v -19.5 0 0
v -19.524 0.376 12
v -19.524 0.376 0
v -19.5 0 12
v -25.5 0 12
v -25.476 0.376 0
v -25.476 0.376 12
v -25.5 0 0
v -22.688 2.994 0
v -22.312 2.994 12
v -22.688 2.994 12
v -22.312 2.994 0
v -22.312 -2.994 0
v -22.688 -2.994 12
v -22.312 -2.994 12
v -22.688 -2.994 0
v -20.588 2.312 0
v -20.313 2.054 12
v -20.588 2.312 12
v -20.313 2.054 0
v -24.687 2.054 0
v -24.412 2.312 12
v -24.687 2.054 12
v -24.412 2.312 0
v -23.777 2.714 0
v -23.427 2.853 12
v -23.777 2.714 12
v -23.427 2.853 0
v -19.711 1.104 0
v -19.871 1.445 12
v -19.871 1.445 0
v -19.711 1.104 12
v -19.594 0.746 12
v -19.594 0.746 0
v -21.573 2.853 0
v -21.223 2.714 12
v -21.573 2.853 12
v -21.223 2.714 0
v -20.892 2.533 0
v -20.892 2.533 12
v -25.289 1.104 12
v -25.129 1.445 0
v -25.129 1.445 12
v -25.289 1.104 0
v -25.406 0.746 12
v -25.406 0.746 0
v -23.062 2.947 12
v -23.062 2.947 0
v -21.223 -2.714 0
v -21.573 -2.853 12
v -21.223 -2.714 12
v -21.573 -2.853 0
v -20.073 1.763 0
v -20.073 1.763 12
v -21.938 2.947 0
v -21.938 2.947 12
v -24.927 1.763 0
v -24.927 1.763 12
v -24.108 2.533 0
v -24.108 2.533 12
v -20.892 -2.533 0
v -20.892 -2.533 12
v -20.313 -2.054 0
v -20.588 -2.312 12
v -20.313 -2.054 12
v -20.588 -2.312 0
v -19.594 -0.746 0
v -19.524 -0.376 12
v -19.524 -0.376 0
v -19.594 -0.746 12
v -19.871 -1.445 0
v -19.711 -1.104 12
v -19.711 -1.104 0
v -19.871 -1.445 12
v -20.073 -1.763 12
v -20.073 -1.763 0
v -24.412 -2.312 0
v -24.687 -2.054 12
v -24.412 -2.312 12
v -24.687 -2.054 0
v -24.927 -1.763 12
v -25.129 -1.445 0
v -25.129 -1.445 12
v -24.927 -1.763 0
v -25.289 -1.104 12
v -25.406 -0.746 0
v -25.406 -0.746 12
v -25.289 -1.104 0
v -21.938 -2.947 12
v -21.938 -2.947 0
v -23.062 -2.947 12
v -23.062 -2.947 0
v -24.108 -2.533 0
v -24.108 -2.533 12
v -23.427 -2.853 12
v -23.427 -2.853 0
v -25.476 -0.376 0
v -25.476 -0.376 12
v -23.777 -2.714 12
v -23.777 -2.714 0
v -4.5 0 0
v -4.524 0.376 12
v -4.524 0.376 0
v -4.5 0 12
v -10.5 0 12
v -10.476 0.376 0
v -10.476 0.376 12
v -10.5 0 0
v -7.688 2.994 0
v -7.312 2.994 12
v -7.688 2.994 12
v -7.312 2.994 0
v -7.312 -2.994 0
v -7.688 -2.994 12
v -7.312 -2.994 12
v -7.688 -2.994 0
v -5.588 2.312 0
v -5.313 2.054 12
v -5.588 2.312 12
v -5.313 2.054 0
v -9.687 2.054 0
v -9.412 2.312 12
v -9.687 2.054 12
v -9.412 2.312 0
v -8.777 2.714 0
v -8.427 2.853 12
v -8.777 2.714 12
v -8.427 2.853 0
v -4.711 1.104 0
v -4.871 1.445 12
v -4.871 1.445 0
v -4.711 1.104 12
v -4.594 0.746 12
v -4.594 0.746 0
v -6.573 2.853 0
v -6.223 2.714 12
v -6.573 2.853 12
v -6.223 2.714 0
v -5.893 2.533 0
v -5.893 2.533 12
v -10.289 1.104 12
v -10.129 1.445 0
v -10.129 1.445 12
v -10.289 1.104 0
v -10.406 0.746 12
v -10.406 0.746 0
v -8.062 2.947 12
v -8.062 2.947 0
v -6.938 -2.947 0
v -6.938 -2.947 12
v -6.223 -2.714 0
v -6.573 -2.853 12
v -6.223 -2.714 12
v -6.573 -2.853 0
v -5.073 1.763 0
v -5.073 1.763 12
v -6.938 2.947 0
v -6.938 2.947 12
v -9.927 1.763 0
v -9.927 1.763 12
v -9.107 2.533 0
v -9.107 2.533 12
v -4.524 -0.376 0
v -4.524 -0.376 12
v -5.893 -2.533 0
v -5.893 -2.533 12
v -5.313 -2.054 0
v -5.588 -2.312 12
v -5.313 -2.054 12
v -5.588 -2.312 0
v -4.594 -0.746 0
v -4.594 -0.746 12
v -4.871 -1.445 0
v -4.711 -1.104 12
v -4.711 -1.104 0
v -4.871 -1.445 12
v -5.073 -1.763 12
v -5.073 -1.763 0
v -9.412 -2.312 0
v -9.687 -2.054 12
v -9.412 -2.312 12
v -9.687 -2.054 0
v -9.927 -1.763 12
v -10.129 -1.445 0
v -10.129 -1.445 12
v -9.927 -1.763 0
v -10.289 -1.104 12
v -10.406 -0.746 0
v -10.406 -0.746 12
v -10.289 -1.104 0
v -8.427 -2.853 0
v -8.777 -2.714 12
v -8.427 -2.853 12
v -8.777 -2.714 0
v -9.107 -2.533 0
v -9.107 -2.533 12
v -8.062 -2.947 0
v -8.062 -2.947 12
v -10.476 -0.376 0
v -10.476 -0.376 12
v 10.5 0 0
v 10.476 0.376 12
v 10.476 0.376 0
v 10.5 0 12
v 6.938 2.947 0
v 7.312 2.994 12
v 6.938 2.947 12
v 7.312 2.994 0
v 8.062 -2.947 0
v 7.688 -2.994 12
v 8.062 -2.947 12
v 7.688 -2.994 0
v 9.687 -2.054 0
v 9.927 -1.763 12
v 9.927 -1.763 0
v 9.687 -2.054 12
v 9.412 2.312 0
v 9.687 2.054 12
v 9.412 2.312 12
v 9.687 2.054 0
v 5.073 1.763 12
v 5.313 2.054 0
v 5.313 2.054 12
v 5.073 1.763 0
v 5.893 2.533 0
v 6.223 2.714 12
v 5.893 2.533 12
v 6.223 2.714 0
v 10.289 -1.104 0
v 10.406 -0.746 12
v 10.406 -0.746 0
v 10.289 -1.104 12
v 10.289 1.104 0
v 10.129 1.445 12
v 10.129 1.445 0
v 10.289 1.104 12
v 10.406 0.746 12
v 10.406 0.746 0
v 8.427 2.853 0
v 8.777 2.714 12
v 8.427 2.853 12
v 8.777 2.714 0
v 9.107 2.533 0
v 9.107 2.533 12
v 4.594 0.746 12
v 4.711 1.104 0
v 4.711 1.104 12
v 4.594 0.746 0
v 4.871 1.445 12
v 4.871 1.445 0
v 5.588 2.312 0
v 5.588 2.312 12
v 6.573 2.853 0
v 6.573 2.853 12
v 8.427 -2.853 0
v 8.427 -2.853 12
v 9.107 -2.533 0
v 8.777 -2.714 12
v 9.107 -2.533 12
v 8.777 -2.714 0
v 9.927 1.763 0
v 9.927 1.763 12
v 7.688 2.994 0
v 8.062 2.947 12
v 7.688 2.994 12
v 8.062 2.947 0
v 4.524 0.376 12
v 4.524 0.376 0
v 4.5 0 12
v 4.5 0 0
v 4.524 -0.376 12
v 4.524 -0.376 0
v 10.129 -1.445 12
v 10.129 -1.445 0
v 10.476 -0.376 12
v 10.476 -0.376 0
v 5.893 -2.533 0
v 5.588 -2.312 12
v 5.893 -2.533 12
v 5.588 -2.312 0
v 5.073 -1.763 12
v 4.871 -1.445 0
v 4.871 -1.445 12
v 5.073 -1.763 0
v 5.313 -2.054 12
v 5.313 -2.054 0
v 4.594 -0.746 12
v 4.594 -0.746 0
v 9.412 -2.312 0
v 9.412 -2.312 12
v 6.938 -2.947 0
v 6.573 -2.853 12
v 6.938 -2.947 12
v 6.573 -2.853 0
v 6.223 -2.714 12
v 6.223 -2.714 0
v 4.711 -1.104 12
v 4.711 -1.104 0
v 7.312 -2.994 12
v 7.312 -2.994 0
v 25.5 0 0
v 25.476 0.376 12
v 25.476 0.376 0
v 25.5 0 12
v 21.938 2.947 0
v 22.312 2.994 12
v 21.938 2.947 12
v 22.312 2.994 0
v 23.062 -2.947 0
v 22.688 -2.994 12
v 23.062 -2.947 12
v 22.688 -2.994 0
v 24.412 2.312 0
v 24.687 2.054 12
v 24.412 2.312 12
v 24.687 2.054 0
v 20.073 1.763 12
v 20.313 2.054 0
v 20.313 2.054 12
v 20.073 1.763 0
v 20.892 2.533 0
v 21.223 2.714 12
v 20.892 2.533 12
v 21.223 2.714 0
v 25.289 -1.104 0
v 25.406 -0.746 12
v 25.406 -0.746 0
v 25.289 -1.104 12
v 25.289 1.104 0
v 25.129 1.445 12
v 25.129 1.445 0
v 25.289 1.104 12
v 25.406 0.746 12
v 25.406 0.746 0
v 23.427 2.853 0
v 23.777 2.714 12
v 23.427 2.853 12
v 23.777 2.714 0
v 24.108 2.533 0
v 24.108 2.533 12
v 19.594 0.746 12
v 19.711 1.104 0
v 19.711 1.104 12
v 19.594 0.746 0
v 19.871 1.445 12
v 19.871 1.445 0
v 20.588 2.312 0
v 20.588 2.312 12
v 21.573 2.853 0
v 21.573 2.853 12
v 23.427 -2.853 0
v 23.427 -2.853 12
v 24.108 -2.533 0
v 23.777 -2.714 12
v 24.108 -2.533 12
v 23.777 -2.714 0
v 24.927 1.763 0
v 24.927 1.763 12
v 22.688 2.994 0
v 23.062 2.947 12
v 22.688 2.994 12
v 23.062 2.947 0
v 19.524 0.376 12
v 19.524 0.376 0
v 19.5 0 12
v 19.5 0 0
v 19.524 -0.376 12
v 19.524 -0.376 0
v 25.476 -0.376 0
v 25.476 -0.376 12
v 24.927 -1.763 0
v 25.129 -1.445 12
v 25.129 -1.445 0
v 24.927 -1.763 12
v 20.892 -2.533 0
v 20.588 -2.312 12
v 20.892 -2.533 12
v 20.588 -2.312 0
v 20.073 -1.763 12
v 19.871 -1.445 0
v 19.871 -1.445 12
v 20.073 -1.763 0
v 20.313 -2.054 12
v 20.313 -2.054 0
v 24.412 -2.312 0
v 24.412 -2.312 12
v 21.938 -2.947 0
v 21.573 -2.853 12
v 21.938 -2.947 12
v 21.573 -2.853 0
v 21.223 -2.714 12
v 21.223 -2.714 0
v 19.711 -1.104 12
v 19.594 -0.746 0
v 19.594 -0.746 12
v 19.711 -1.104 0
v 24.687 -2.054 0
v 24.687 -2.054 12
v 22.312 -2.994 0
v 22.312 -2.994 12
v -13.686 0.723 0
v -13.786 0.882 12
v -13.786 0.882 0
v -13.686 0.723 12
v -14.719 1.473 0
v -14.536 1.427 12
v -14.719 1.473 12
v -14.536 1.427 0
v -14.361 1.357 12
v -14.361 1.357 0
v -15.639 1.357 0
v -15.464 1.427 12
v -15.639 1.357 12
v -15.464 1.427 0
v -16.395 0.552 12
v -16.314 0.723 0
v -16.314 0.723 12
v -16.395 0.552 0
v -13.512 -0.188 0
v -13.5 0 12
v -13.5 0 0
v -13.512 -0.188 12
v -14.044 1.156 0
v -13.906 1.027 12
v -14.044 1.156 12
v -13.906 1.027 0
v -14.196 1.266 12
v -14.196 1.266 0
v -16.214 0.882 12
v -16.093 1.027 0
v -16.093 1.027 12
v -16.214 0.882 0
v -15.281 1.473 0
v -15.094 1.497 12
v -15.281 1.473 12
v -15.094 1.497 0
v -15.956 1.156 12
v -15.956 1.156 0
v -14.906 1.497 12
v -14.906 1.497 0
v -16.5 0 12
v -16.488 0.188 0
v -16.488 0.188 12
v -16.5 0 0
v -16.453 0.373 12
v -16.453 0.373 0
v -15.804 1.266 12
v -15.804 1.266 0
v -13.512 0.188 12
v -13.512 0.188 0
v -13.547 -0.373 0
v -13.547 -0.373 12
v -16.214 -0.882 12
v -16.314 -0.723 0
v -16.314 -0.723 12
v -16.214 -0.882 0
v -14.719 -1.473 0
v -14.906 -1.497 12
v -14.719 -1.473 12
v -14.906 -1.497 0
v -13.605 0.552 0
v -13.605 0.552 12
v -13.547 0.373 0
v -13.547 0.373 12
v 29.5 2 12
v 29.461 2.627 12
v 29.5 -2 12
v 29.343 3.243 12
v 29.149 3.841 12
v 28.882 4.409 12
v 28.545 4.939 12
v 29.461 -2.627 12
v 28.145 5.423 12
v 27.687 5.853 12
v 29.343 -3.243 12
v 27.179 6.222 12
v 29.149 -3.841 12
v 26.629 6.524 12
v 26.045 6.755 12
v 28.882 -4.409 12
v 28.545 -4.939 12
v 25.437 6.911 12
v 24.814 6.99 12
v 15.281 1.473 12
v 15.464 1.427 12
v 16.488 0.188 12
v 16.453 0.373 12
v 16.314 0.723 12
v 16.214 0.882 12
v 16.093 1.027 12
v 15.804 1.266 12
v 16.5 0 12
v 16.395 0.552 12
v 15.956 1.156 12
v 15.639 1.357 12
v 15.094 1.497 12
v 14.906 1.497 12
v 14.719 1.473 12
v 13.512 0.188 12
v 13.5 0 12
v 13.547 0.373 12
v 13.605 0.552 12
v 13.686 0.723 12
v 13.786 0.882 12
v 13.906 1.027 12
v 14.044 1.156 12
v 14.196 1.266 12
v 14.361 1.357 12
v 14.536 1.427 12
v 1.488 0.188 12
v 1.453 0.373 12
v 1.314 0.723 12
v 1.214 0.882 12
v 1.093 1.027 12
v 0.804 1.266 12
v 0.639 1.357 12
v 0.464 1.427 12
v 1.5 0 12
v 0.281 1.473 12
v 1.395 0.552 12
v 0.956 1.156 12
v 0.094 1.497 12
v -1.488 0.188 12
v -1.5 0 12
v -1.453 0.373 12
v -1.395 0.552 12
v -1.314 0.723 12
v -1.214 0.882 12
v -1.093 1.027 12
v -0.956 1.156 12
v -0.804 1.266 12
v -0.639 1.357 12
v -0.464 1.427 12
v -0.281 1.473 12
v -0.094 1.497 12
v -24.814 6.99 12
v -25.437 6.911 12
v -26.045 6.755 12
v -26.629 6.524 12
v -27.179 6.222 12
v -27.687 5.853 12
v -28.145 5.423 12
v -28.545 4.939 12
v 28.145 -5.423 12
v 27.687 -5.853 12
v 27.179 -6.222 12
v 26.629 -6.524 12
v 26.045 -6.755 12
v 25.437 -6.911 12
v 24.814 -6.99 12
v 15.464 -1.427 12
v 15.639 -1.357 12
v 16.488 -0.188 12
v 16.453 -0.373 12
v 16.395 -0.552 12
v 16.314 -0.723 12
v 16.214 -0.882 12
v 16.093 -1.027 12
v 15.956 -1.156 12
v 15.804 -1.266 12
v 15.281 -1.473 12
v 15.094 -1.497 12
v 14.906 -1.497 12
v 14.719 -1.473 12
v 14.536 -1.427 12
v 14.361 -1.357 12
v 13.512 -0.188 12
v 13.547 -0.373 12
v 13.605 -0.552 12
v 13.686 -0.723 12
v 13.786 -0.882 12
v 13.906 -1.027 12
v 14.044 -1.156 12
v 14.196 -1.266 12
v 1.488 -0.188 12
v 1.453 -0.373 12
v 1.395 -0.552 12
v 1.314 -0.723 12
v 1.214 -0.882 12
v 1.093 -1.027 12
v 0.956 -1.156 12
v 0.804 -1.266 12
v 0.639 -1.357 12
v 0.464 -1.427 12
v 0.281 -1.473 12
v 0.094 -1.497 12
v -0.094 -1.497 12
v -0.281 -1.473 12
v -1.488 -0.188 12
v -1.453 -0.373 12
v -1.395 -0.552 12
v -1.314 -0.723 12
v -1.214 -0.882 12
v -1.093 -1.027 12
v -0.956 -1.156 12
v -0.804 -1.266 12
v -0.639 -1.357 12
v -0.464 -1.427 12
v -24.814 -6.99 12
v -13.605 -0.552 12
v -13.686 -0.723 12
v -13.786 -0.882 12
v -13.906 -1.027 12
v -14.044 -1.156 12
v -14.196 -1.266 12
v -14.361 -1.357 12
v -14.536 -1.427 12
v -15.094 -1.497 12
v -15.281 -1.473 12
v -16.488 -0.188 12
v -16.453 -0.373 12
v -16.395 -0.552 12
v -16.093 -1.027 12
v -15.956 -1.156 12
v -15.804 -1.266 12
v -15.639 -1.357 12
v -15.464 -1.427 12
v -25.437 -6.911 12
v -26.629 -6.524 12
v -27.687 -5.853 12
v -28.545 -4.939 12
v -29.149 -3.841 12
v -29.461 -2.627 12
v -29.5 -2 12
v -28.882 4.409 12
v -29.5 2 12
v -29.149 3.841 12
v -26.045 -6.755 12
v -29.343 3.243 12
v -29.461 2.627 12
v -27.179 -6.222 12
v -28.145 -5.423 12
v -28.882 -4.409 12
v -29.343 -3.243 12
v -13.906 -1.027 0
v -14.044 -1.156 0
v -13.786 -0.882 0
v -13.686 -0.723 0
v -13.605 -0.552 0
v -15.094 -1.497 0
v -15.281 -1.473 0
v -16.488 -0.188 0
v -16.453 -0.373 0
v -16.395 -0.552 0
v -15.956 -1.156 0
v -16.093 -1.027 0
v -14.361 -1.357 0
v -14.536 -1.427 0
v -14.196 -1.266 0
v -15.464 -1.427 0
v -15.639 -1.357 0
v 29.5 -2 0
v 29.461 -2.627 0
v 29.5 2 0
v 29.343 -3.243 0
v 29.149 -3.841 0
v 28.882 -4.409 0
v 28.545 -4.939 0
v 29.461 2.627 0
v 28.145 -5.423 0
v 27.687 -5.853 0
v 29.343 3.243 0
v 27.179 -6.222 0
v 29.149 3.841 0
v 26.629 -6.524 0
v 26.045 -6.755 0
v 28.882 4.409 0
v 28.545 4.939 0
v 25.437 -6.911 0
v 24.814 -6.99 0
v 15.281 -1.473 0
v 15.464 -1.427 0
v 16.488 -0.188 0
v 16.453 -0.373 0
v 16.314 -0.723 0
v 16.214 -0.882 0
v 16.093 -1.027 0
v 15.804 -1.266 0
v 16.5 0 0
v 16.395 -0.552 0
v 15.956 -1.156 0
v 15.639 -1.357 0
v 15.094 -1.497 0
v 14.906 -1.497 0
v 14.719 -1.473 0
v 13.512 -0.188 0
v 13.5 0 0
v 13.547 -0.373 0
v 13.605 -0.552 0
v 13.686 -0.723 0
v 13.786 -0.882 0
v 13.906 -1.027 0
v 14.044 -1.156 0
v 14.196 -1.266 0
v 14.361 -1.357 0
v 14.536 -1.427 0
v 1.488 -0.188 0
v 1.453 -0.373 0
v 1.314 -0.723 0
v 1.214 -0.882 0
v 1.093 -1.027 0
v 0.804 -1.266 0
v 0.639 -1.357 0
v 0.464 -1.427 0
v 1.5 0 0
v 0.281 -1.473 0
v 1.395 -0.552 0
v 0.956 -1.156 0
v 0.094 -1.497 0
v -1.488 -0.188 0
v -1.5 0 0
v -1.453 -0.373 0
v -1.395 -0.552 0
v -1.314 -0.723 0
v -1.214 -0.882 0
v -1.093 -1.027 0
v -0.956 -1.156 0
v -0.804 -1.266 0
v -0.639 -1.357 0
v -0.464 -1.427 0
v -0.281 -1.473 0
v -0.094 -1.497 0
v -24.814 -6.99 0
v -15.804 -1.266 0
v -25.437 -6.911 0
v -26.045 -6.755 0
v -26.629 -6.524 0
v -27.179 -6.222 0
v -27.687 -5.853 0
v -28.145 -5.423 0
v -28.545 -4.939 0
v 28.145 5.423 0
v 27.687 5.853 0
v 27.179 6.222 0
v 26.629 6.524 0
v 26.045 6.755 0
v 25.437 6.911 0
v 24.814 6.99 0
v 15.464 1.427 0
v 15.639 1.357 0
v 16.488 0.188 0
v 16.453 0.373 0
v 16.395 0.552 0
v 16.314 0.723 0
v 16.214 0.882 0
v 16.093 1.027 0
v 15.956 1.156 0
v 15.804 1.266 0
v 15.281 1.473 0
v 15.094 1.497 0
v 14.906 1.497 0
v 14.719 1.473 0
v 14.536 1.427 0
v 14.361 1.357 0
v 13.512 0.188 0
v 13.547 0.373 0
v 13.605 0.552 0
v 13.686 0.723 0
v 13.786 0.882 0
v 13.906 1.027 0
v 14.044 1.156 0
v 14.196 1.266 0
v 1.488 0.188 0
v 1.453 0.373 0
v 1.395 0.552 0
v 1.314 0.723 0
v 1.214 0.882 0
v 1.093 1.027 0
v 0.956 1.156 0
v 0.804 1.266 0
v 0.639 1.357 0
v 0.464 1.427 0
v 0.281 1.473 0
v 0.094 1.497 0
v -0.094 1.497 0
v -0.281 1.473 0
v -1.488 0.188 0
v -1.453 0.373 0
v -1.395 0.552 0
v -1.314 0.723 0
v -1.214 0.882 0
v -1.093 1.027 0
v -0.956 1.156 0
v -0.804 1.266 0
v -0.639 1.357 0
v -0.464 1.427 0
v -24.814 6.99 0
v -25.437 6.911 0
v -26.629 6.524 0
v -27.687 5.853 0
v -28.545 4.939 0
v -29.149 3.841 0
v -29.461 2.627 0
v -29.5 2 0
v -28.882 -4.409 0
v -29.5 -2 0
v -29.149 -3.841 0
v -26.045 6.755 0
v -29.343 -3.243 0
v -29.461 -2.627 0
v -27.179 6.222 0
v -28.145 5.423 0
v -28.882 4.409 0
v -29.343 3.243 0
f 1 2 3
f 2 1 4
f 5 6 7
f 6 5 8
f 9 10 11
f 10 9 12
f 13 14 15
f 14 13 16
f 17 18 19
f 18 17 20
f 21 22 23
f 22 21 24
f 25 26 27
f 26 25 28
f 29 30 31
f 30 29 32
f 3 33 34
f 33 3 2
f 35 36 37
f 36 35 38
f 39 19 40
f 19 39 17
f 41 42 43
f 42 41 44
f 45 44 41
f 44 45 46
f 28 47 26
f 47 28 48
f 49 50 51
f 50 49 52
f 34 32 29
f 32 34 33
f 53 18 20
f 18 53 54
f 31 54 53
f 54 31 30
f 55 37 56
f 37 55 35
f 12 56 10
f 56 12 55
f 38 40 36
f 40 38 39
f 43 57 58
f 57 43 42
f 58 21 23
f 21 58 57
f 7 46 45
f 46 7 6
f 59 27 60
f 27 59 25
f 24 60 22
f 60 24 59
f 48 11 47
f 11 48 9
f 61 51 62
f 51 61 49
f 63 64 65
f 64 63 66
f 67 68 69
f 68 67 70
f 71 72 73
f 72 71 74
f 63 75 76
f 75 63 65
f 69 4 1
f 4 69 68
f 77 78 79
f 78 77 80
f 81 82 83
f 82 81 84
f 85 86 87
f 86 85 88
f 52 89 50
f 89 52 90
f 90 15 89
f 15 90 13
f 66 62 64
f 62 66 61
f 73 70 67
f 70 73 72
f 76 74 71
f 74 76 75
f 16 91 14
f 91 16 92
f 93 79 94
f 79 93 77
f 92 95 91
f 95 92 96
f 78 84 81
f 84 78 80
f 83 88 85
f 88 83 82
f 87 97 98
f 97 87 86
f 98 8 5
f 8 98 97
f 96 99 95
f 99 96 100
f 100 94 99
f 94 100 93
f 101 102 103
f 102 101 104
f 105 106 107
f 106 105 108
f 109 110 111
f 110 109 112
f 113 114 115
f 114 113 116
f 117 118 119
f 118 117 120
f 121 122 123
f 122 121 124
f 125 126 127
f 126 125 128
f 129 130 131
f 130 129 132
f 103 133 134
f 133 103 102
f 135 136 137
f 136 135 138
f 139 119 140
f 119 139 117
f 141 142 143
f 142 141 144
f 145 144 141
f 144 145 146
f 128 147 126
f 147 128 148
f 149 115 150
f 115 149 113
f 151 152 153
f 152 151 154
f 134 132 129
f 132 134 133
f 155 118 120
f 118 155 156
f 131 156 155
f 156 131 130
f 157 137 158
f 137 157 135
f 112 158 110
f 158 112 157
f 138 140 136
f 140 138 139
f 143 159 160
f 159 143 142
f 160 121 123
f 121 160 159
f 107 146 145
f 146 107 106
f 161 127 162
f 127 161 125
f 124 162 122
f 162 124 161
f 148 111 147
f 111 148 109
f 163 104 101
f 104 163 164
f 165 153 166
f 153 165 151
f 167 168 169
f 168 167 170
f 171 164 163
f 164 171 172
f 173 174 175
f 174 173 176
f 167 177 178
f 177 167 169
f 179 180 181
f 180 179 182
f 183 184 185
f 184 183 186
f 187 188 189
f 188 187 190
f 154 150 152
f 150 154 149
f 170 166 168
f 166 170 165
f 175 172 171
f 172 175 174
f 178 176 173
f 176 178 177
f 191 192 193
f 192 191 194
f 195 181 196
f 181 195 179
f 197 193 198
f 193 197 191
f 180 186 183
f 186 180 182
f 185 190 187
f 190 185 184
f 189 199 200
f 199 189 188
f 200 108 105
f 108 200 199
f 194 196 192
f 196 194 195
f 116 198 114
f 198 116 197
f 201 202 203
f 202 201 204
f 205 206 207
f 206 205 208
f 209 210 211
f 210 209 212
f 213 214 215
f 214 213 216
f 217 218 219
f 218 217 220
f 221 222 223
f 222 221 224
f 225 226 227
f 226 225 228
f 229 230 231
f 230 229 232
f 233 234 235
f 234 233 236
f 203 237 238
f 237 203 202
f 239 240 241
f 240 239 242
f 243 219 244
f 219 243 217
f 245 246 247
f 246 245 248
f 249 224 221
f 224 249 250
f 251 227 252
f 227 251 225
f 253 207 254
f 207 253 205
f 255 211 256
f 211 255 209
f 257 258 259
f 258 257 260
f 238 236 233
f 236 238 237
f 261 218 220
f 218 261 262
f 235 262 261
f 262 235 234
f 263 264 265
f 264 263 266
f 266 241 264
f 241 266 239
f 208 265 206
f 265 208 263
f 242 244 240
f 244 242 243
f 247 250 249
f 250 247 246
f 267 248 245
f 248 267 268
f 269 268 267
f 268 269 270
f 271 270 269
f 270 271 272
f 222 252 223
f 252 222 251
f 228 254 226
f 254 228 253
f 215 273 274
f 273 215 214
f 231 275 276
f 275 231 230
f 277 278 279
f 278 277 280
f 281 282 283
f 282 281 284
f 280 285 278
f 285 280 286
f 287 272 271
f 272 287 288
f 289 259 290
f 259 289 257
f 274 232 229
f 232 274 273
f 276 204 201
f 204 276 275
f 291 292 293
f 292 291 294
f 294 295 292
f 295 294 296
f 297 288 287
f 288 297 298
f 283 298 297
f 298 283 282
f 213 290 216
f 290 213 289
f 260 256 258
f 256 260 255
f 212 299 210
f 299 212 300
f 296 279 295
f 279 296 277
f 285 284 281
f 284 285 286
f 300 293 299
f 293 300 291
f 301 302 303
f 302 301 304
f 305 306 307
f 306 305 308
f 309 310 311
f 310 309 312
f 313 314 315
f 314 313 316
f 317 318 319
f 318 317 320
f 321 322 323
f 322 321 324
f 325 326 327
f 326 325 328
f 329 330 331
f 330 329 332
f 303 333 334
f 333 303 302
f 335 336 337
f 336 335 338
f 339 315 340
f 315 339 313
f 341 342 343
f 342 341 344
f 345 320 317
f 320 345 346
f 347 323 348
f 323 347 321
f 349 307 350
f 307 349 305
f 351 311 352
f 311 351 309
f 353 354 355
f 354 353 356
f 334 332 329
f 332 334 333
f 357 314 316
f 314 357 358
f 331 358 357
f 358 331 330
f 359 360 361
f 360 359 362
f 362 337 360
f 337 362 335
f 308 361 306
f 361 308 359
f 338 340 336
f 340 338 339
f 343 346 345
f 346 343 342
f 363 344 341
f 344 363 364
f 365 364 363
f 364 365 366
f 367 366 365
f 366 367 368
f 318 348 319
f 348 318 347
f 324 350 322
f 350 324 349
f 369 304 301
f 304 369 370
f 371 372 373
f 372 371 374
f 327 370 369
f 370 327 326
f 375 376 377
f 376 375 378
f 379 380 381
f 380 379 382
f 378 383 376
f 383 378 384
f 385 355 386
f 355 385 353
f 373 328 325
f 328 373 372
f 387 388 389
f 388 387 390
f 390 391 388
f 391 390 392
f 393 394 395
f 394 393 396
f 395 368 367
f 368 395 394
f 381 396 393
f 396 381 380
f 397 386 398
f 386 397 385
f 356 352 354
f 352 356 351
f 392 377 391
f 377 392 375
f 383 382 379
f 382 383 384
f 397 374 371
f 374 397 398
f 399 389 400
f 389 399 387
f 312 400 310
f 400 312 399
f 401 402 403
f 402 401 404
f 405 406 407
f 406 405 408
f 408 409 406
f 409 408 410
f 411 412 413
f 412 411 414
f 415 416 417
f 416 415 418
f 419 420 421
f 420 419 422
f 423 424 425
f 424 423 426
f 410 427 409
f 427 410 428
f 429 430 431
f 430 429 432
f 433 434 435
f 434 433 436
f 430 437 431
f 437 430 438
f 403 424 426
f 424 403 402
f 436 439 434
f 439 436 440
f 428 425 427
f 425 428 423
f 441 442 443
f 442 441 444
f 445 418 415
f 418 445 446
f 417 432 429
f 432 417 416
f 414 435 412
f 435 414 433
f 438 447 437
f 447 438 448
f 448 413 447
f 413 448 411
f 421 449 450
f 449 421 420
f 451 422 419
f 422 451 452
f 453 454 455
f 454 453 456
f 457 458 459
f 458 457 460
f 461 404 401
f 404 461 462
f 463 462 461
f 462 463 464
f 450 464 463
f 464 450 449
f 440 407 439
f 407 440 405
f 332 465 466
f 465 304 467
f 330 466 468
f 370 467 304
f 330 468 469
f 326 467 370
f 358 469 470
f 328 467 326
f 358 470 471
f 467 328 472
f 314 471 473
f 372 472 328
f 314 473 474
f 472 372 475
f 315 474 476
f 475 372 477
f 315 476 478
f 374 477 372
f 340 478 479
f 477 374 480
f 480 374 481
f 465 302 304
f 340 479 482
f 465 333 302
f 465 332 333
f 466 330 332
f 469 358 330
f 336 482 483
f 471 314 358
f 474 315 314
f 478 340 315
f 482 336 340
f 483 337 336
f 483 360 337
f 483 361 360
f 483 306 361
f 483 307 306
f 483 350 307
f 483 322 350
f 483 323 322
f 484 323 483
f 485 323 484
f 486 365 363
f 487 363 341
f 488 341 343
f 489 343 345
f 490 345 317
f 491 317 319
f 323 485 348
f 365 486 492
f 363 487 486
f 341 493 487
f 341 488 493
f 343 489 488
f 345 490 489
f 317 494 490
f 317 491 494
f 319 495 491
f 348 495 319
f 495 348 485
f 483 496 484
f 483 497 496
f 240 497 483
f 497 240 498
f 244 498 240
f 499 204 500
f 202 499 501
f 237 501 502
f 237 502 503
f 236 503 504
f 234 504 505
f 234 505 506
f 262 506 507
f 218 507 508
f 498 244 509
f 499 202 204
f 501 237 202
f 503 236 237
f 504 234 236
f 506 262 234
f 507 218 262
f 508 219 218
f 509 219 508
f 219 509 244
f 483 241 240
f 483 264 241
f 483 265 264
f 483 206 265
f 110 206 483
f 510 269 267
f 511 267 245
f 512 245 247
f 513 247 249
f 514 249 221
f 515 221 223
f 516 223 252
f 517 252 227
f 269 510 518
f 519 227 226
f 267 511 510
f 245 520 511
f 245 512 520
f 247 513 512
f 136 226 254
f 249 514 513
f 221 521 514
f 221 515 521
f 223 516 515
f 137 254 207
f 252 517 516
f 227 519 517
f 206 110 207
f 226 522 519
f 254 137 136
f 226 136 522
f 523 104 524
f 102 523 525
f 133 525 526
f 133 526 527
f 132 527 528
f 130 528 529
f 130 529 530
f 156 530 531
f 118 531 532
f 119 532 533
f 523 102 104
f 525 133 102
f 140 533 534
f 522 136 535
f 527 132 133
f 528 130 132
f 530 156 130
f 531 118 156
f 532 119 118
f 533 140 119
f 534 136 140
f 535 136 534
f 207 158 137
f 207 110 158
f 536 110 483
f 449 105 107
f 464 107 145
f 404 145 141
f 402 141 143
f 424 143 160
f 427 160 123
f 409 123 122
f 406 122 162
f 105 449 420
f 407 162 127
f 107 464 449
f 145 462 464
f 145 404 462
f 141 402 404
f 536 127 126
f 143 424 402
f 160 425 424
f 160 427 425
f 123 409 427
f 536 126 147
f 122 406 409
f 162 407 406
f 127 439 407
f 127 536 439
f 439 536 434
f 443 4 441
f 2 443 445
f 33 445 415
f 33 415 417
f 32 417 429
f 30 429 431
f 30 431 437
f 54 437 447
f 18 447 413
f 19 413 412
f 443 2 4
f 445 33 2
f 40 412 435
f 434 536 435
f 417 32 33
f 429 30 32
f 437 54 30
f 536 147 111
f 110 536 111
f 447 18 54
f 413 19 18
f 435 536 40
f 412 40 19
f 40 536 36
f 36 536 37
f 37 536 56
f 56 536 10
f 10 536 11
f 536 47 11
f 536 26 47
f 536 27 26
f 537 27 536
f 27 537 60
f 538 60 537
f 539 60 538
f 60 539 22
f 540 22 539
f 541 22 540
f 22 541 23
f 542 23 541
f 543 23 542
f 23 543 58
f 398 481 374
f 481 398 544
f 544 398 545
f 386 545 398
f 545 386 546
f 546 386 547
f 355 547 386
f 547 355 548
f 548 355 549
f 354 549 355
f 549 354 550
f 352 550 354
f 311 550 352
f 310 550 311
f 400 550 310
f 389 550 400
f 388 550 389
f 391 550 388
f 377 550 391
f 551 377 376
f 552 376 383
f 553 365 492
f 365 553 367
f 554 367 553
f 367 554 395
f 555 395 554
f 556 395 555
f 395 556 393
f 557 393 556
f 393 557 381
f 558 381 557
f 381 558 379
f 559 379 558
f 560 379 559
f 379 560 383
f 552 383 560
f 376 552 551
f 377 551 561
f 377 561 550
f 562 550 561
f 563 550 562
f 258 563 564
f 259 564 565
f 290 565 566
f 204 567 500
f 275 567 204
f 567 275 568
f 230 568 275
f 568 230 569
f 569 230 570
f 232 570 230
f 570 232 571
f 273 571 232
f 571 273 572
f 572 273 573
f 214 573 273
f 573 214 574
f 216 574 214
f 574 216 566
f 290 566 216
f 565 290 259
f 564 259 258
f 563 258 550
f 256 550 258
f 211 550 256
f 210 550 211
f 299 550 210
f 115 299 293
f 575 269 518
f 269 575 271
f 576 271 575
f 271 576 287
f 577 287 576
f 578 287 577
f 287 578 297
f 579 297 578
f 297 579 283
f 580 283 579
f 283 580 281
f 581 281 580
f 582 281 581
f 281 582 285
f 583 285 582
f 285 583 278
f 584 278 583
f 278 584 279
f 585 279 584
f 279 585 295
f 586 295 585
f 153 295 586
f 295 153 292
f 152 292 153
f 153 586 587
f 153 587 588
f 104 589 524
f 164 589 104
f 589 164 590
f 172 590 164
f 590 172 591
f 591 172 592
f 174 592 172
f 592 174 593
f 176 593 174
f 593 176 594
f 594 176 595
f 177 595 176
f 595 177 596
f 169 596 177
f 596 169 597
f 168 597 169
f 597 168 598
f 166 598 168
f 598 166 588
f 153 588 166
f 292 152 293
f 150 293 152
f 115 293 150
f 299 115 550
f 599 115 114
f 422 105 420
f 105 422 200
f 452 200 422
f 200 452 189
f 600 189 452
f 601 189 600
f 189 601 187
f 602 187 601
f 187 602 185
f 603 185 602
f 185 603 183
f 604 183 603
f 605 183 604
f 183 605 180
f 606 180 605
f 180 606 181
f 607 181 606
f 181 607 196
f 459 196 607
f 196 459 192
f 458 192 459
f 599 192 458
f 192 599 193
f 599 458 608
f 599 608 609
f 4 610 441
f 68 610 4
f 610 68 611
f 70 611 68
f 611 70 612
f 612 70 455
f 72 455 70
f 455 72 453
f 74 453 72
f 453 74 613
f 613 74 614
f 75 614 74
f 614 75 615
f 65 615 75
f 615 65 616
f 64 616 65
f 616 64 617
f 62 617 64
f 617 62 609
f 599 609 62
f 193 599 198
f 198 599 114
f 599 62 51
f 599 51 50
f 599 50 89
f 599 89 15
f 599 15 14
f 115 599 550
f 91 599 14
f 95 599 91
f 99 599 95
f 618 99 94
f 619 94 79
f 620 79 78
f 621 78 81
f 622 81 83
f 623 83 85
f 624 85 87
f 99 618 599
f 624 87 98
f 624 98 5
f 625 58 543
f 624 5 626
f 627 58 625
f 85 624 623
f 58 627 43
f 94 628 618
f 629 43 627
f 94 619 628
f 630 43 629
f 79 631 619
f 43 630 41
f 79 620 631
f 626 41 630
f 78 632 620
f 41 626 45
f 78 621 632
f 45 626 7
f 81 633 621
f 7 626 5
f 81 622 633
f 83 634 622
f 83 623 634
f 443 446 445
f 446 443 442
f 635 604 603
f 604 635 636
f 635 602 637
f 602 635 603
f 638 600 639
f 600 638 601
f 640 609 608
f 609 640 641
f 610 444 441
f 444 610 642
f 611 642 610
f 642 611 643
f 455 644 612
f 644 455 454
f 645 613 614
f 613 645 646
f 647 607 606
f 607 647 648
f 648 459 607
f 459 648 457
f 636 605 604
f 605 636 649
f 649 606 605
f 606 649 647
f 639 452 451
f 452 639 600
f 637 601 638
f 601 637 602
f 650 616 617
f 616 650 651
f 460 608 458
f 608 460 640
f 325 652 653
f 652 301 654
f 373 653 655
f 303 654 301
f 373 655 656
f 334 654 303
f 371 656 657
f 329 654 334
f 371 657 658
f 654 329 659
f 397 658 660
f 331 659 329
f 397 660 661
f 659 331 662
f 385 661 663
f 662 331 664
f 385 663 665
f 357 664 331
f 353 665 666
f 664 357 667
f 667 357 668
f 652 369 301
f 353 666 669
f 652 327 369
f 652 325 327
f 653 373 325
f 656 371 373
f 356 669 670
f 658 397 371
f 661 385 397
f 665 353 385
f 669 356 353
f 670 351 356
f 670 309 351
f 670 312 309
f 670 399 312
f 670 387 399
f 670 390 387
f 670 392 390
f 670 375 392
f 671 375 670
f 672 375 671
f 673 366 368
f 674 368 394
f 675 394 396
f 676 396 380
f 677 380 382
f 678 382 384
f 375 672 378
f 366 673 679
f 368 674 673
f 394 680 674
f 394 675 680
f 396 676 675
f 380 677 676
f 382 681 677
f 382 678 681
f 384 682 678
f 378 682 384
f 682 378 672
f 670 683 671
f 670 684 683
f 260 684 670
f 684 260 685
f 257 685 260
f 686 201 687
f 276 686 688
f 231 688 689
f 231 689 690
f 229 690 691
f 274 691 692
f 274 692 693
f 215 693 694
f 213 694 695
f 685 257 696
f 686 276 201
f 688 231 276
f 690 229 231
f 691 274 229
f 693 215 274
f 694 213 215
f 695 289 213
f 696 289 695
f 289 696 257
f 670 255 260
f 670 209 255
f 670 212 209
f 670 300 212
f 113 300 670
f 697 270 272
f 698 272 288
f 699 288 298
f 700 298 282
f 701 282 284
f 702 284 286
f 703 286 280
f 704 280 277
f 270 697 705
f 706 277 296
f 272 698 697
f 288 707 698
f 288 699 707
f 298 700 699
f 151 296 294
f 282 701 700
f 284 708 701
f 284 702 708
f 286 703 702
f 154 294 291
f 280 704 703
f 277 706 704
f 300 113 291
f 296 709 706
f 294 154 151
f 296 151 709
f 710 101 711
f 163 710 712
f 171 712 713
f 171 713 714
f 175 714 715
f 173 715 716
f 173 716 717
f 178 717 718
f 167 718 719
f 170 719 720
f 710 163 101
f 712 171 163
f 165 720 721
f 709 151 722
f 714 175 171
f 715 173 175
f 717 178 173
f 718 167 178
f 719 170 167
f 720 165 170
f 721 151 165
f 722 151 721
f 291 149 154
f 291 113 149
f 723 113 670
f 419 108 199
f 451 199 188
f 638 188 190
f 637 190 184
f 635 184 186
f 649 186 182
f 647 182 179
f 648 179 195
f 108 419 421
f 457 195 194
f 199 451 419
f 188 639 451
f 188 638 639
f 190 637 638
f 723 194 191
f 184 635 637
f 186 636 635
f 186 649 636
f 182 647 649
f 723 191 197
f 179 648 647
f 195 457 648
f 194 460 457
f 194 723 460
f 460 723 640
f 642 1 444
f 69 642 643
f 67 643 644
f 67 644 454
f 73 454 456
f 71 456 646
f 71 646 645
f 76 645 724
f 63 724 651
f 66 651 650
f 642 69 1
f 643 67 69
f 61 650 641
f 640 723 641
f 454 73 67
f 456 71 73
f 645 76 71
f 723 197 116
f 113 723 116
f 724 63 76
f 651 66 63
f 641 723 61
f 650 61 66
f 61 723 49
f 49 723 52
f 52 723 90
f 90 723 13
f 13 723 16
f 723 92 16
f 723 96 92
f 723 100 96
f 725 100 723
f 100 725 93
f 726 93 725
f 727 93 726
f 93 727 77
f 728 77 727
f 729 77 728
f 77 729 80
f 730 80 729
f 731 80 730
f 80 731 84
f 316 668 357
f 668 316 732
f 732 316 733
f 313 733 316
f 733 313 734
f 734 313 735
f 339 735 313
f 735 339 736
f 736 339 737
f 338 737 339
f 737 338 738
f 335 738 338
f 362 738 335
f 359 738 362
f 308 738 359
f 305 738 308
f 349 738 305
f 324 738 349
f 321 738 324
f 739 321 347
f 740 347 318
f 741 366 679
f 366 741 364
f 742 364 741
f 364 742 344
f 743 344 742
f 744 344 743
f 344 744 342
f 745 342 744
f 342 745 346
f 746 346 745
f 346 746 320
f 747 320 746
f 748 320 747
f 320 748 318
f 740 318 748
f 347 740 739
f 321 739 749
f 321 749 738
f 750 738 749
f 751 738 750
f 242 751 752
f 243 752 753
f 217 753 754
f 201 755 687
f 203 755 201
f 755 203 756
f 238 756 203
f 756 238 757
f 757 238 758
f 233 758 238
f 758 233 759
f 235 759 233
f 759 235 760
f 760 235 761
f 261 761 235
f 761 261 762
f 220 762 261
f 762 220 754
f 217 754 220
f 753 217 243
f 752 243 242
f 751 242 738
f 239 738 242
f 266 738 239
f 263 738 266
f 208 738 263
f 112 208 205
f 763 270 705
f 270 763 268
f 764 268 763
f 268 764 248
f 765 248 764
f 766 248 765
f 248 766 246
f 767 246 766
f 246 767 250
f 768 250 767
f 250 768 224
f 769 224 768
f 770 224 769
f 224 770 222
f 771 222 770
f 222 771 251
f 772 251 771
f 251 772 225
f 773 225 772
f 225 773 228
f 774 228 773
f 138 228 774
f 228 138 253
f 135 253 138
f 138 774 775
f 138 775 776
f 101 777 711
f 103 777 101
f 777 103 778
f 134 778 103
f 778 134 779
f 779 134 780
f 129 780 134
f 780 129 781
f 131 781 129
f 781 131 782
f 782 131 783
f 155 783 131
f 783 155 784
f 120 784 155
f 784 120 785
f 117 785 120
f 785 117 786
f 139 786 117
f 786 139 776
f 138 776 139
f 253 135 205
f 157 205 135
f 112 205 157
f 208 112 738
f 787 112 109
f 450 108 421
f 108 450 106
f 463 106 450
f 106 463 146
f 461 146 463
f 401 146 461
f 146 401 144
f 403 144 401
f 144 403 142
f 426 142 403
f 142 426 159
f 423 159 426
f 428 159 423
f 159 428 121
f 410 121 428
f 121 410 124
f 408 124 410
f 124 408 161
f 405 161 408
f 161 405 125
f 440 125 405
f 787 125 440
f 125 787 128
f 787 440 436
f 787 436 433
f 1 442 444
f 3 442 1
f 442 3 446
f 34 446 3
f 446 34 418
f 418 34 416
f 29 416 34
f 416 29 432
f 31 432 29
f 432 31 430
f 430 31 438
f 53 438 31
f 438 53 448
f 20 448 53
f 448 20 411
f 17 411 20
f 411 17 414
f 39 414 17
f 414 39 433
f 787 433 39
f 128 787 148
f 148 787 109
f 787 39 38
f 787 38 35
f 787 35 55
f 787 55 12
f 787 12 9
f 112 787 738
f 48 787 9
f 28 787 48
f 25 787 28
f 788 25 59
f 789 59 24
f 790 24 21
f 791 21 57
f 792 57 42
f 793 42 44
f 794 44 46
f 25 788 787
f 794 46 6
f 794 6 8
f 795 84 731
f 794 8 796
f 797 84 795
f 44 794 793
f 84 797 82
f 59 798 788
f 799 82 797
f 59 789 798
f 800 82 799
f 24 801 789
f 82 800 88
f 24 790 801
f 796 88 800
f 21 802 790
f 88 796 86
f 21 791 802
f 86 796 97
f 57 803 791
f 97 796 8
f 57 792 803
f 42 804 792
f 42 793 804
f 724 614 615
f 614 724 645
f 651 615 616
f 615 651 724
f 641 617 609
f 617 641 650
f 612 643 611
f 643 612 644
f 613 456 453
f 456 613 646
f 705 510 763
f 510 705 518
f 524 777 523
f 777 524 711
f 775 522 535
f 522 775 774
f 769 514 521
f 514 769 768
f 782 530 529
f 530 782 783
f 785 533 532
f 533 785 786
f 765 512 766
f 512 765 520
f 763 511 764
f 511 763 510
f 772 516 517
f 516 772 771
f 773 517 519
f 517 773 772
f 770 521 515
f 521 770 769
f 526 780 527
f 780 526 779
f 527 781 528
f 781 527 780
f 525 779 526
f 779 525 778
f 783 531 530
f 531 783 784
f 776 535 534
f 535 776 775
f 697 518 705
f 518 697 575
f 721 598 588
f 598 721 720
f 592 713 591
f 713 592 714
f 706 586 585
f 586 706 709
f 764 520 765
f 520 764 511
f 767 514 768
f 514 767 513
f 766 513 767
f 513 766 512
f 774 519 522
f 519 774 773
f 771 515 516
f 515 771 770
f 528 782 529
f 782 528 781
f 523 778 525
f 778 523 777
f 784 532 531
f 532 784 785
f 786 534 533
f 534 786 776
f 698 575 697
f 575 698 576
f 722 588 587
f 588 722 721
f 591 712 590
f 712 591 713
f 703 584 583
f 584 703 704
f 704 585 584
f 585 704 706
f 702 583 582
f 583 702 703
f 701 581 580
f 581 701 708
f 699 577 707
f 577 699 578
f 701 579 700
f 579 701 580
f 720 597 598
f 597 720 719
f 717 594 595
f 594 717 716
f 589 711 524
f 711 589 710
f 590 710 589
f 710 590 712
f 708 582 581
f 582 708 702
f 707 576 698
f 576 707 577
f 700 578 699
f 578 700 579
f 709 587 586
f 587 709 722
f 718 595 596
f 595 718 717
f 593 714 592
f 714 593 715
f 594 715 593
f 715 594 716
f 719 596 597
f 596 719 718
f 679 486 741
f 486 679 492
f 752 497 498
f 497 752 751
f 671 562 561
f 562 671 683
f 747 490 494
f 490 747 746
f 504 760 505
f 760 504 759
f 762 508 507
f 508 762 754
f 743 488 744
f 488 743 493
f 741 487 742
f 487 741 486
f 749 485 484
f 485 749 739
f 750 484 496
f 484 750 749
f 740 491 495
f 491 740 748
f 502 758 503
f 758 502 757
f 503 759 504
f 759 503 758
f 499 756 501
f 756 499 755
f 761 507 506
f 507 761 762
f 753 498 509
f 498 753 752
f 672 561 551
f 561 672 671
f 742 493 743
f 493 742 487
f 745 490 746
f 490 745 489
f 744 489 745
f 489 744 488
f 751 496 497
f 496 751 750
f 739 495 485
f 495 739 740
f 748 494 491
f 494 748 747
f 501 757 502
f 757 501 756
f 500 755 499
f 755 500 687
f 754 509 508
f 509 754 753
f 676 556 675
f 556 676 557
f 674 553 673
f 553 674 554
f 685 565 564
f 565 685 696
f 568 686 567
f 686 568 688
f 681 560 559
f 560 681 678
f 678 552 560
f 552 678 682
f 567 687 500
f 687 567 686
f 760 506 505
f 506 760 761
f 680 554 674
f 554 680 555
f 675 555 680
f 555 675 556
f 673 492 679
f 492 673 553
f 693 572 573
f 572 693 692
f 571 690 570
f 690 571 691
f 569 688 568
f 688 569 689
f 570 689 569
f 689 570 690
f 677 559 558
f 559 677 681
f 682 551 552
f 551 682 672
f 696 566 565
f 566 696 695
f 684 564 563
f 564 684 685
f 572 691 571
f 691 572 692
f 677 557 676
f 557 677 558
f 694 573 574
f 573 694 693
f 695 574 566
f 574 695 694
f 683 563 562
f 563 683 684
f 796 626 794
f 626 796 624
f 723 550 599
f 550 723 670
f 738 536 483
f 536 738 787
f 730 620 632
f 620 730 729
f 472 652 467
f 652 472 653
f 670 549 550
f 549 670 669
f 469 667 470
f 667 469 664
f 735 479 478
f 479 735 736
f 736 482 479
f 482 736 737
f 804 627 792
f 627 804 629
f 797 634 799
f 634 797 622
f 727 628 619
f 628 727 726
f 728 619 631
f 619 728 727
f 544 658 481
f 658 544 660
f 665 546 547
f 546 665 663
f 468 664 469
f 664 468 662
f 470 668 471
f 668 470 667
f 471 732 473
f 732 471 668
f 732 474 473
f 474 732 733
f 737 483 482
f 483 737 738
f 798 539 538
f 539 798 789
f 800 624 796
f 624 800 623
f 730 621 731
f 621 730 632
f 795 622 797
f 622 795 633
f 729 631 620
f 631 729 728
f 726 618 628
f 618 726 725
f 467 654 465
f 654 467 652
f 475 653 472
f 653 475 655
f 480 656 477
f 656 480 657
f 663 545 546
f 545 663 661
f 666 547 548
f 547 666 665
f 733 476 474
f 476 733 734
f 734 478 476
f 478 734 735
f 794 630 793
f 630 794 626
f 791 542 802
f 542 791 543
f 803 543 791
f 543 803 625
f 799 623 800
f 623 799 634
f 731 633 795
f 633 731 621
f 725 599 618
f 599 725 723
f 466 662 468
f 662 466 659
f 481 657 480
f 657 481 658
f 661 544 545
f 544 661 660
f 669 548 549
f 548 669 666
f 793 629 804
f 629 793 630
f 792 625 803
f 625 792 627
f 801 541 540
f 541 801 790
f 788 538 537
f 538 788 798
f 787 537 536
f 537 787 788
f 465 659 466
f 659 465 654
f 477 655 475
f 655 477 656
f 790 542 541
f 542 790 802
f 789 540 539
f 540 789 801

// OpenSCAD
$fn = 50;


difference() {
	union() {
		hull() {
			translate(v = [-24.5000000000, 2.0000000000, 0]) {
				cylinder(h = 12, r = 5);
			}
			translate(v = [24.5000000000, 2.0000000000, 0]) {
				cylinder(h = 12, r = 5);
			}
			translate(v = [-24.5000000000, -2.0000000000, 0]) {
				cylinder(h = 12, r = 5);
			}
			translate(v = [24.5000000000, -2.0000000000, 0]) {
				cylinder(h = 12, r = 5);
			}
		}
	}
	union() {
		translate(v = [-22.5000000000, 0.0000000000, -100.0000000000]) {
			cylinder(h = 200, r = 3.0000000000);
		}
		translate(v = [-7.5000000000, 0.0000000000, -100.0000000000]) {
			cylinder(h = 200, r = 3.0000000000);
		}
		translate(v = [7.5000000000, 0.0000000000, -100.0000000000]) {
			cylinder(h = 200, r = 3.0000000000);
		}
		translate(v = [22.5000000000, 0.0000000000, -100.0000000000]) {
			cylinder(h = 200, r = 3.0000000000);
		}
		translate(v = [-22.5000000000, 0.0000000000, 0]) {
			cylinder(h = 12, r = 1.5000000000);
		}
		translate(v = [-15.0000000000, 0.0000000000, 0]) {
			cylinder(h = 12, r = 1.5000000000);
		}
		translate(v = [-7.5000000000, 0.0000000000, 0]) {
			cylinder(h = 12, r = 1.5000000000);
		}
		cylinder(h = 12, r = 1.5000000000);
		translate(v = [7.5000000000, 0.0000000000, 0]) {
			cylinder(h = 12, r = 1.5000000000);
		}
		translate(v = [15.0000000000, 0.0000000000, 0]) {
			cylinder(h = 12, r = 1.5000000000);
		}
		translate(v = [22.5000000000, 0.0000000000, 0]) {
			cylinder(h = 12, r = 1.5000000000);
		}
		translate(v = [-22.5000000000, 0.0000000000, 0]) {
			cylinder(h = 12, r = 1.5000000000);
		}
		translate(v = [-15.0000000000, 0.0000000000, 0]) {
			cylinder(h = 12, r = 1.5000000000);
		}
		translate(v = [-7.5000000000, 0.0000000000, 0]) {
			cylinder(h = 12, r = 1.5000000000);
		}
		cylinder(h = 12, r = 1.5000000000);
		translate(v = [7.5000000000, 0.0000000000, 0]) {
			cylinder(h = 12, r = 1.5000000000);
		}
		translate(v = [15.0000000000, 0.0000000000, 0]) {
			cylinder(h = 12, r = 1.5000000000);
		}
		translate(v = [22.5000000000, 0.0000000000, 0]) {
			cylinder(h = 12, r = 1.5000000000);
		}
		translate(v = [-22.5000000000, 0.0000000000, 0]) {
			cylinder(h = 12, r = 1.5000000000);
		}
		translate(v = [-15.0000000000, 0.0000000000, 0]) {
			cylinder(h = 12, r = 1.5000000000);
		}
		translate(v = [-7.5000000000, 0.0000000000, 0]) {
			cylinder(h = 12, r = 1.5000000000);
		}
		cylinder(h = 12, r = 1.5000000000);
		translate(v = [7.5000000000, 0.0000000000, 0]) {
			cylinder(h = 12, r = 1.5000000000);
		}
		translate(v = [15.0000000000, 0.0000000000, 0]) {
			cylinder(h = 12, r = 1.5000000000);
		}
		translate(v = [22.5000000000, 0.0000000000, 0]) {
			cylinder(h = 12, r = 1.5000000000);
		}
	}
}
